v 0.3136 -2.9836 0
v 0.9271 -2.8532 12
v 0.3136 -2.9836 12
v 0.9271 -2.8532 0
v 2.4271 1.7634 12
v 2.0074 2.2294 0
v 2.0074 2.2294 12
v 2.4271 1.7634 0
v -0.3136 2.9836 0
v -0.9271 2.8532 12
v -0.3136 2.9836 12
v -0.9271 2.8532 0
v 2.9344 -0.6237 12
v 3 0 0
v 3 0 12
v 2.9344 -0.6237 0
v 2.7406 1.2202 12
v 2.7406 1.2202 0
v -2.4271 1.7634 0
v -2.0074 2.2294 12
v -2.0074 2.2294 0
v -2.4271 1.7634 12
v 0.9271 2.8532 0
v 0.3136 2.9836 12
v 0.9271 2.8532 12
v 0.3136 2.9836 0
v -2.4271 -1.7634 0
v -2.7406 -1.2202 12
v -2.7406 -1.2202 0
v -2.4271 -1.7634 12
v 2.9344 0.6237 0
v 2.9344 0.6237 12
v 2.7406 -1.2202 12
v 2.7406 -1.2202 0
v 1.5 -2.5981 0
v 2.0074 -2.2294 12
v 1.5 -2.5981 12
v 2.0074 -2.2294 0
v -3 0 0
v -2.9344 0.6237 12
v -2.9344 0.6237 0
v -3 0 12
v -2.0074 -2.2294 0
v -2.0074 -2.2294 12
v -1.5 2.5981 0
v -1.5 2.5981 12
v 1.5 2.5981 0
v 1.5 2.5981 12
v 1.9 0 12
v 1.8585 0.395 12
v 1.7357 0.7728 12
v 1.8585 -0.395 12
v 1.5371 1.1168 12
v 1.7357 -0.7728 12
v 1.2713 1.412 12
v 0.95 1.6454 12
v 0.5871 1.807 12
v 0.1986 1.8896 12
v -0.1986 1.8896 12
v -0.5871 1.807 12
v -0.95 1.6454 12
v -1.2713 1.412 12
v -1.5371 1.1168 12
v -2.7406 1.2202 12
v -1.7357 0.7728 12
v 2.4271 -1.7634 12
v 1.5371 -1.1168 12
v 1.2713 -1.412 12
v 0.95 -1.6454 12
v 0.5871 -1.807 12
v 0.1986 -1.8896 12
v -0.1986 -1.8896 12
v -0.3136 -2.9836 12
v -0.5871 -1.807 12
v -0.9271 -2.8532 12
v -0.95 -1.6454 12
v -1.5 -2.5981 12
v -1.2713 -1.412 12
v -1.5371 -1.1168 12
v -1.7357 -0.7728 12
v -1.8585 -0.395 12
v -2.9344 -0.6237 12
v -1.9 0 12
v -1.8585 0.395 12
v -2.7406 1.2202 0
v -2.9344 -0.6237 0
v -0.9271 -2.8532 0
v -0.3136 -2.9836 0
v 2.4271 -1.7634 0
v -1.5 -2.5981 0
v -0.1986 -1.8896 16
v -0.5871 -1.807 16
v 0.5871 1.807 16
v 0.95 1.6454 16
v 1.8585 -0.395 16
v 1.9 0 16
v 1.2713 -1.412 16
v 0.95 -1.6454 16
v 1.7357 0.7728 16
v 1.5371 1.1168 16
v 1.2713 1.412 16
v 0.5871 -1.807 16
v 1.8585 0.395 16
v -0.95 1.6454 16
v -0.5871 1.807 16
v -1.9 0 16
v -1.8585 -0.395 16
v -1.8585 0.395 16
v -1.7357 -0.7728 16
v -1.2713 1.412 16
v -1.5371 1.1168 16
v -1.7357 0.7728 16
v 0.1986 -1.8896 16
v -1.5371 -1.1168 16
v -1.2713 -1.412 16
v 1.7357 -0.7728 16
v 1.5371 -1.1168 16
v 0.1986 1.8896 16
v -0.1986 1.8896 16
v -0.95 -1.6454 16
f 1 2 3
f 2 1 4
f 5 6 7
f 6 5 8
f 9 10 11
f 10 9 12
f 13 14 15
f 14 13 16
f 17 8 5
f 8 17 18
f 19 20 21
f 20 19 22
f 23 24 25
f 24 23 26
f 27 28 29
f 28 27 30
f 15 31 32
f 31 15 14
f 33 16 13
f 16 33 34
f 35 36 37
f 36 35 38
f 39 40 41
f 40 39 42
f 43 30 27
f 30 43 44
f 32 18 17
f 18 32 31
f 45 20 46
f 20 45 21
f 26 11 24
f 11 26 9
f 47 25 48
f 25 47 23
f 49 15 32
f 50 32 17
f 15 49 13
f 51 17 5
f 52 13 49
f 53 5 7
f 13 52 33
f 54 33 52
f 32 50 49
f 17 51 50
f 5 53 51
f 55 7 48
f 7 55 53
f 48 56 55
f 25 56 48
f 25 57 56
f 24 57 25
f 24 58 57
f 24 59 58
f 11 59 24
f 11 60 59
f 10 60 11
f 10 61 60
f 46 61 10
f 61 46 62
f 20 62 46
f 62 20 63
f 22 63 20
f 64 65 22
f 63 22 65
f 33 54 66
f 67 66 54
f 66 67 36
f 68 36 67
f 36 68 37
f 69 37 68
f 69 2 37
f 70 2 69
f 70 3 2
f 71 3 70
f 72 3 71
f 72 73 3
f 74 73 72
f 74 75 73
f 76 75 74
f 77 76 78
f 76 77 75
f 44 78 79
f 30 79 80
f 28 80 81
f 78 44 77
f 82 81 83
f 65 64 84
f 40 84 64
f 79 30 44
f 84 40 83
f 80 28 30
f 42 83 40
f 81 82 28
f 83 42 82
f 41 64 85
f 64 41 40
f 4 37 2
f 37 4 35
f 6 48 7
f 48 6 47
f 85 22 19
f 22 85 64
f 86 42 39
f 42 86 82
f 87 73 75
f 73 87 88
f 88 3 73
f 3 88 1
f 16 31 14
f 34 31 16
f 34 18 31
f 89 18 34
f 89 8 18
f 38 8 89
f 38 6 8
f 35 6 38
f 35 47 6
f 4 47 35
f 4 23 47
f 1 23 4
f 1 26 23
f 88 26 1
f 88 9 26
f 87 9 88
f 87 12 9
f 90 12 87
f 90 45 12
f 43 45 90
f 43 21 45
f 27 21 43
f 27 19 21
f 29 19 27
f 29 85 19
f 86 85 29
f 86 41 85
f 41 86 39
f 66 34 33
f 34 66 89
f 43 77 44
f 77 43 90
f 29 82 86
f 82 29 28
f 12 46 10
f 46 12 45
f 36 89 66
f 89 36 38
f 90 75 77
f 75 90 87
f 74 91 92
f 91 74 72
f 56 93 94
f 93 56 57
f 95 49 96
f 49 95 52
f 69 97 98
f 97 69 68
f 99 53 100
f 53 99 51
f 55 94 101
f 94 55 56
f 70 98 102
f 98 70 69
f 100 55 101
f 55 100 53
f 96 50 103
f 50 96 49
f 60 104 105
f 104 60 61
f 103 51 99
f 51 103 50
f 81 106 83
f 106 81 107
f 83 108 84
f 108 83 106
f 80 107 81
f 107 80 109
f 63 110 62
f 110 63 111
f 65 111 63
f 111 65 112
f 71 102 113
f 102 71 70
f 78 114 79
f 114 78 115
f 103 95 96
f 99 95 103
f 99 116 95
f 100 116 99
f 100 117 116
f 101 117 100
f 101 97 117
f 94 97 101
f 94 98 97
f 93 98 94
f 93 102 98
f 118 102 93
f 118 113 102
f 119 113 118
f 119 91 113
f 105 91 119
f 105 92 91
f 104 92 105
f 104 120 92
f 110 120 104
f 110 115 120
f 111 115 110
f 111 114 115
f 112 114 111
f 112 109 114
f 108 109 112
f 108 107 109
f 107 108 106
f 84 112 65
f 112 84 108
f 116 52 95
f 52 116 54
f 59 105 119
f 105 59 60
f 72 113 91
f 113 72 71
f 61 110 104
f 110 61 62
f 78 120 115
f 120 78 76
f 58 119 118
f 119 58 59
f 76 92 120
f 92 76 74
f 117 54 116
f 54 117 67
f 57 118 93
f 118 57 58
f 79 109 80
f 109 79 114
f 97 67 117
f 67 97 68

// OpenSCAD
$fn = 30;

cylinder(h = 12, d = 6);
translate([0, 0, 12]) {
    cylinder(h = 4, d = 3.8);
}
